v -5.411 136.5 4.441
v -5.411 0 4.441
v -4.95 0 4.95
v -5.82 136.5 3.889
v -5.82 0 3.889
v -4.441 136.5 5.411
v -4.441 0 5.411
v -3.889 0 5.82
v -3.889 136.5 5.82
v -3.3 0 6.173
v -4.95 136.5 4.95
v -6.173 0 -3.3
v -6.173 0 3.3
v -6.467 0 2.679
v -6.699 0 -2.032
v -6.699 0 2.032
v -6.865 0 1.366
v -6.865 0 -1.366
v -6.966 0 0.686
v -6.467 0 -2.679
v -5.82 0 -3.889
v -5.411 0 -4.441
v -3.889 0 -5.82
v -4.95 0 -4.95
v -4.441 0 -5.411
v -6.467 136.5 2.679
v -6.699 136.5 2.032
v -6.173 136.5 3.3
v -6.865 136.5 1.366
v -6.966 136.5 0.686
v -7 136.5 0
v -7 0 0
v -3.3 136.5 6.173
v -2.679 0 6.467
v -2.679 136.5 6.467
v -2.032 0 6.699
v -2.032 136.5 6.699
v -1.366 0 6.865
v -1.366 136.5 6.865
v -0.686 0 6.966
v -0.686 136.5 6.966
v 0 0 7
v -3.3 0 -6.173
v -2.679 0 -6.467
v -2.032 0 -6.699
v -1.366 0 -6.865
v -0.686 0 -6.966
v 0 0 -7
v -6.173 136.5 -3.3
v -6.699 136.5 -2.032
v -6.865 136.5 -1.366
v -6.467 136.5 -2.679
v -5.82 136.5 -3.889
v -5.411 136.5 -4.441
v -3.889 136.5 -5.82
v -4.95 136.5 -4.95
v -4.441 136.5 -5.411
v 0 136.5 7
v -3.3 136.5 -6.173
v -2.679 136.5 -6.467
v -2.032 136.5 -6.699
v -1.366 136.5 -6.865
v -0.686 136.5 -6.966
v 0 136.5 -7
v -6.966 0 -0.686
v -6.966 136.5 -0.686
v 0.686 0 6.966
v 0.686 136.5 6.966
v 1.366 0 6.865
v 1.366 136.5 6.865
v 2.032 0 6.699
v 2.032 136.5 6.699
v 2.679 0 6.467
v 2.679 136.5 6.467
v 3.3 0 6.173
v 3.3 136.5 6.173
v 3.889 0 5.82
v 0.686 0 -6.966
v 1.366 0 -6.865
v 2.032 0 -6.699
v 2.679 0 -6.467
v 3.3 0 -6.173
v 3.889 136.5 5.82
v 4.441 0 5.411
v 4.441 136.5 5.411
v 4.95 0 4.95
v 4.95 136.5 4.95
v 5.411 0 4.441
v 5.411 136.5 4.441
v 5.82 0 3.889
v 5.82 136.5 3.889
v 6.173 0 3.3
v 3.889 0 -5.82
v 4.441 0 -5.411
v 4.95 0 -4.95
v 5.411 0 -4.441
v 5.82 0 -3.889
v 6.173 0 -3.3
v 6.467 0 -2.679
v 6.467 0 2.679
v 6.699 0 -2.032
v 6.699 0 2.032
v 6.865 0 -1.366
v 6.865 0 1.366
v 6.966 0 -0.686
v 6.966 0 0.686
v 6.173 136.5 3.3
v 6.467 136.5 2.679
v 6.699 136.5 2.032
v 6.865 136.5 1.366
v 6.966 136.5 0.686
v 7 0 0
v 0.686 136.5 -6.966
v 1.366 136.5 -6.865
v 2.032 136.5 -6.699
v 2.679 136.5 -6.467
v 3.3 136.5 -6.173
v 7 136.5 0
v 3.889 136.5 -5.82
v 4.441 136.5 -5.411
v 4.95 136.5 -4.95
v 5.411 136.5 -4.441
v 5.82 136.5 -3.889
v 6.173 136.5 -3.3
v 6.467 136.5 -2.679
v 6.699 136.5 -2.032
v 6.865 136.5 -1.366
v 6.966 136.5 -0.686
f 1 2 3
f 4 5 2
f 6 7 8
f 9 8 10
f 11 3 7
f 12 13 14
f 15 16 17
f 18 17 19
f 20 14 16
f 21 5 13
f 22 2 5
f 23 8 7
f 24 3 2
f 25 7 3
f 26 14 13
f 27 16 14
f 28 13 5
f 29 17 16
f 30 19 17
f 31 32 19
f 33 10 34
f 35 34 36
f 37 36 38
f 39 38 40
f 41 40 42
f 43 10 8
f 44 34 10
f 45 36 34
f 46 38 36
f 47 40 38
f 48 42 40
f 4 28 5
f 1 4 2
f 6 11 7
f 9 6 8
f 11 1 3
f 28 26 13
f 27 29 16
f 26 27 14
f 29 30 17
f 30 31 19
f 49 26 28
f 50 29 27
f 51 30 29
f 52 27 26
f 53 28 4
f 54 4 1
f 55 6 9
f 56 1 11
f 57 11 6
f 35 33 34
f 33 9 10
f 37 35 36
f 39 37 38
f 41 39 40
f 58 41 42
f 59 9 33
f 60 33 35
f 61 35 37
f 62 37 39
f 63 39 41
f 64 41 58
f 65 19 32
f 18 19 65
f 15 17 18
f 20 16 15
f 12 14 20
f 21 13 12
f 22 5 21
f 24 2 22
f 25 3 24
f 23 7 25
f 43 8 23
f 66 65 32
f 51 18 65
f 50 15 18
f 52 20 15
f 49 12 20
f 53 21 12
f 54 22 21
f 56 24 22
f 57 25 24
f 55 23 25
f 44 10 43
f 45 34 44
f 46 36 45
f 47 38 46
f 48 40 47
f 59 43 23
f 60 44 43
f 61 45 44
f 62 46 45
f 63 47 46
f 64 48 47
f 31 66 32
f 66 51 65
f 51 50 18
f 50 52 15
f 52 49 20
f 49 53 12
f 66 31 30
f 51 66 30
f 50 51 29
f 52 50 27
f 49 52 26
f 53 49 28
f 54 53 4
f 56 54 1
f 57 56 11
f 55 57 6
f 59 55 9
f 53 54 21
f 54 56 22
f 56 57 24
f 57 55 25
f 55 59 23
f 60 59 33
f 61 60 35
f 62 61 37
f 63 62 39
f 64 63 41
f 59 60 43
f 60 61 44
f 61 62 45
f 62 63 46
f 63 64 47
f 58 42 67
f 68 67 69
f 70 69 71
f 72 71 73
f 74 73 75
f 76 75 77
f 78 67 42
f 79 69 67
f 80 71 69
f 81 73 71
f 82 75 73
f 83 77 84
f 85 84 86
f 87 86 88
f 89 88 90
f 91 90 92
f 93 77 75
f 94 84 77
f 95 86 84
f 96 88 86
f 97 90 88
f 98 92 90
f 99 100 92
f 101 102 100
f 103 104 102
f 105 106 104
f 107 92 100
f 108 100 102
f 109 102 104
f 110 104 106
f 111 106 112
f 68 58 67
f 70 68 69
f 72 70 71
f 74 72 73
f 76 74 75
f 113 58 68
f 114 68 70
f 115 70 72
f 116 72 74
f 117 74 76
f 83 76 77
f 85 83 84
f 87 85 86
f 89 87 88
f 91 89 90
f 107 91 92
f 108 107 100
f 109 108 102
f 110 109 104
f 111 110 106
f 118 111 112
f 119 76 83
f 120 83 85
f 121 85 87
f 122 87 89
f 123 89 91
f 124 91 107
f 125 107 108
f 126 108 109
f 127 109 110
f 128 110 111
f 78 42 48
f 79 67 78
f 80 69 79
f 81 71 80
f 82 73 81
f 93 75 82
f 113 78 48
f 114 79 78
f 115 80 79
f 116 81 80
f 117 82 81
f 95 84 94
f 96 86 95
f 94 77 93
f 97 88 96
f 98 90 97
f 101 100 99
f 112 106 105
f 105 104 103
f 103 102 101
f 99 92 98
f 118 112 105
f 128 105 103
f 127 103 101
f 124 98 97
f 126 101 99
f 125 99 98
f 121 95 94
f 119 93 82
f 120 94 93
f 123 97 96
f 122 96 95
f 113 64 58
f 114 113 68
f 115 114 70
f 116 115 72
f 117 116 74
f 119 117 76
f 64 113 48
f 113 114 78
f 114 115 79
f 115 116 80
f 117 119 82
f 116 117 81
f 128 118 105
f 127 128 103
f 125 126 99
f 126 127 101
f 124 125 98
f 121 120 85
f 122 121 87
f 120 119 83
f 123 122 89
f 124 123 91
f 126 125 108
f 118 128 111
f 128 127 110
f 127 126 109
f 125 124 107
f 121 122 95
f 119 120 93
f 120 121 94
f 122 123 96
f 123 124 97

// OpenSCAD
// IKEA MÅLA marker
// Geometry follows the holder clearance profile. Its dimensions describe the pocket used in the source design. Physical tool dimensions and fit have yet to be measured.
// Units: mm
$fn = 64;
union() {
    translate([0, 0, 0]) rotate([-90, 0, 0])
        cylinder(h=136.5, r1=7, r2=7, $fn=64);
}
